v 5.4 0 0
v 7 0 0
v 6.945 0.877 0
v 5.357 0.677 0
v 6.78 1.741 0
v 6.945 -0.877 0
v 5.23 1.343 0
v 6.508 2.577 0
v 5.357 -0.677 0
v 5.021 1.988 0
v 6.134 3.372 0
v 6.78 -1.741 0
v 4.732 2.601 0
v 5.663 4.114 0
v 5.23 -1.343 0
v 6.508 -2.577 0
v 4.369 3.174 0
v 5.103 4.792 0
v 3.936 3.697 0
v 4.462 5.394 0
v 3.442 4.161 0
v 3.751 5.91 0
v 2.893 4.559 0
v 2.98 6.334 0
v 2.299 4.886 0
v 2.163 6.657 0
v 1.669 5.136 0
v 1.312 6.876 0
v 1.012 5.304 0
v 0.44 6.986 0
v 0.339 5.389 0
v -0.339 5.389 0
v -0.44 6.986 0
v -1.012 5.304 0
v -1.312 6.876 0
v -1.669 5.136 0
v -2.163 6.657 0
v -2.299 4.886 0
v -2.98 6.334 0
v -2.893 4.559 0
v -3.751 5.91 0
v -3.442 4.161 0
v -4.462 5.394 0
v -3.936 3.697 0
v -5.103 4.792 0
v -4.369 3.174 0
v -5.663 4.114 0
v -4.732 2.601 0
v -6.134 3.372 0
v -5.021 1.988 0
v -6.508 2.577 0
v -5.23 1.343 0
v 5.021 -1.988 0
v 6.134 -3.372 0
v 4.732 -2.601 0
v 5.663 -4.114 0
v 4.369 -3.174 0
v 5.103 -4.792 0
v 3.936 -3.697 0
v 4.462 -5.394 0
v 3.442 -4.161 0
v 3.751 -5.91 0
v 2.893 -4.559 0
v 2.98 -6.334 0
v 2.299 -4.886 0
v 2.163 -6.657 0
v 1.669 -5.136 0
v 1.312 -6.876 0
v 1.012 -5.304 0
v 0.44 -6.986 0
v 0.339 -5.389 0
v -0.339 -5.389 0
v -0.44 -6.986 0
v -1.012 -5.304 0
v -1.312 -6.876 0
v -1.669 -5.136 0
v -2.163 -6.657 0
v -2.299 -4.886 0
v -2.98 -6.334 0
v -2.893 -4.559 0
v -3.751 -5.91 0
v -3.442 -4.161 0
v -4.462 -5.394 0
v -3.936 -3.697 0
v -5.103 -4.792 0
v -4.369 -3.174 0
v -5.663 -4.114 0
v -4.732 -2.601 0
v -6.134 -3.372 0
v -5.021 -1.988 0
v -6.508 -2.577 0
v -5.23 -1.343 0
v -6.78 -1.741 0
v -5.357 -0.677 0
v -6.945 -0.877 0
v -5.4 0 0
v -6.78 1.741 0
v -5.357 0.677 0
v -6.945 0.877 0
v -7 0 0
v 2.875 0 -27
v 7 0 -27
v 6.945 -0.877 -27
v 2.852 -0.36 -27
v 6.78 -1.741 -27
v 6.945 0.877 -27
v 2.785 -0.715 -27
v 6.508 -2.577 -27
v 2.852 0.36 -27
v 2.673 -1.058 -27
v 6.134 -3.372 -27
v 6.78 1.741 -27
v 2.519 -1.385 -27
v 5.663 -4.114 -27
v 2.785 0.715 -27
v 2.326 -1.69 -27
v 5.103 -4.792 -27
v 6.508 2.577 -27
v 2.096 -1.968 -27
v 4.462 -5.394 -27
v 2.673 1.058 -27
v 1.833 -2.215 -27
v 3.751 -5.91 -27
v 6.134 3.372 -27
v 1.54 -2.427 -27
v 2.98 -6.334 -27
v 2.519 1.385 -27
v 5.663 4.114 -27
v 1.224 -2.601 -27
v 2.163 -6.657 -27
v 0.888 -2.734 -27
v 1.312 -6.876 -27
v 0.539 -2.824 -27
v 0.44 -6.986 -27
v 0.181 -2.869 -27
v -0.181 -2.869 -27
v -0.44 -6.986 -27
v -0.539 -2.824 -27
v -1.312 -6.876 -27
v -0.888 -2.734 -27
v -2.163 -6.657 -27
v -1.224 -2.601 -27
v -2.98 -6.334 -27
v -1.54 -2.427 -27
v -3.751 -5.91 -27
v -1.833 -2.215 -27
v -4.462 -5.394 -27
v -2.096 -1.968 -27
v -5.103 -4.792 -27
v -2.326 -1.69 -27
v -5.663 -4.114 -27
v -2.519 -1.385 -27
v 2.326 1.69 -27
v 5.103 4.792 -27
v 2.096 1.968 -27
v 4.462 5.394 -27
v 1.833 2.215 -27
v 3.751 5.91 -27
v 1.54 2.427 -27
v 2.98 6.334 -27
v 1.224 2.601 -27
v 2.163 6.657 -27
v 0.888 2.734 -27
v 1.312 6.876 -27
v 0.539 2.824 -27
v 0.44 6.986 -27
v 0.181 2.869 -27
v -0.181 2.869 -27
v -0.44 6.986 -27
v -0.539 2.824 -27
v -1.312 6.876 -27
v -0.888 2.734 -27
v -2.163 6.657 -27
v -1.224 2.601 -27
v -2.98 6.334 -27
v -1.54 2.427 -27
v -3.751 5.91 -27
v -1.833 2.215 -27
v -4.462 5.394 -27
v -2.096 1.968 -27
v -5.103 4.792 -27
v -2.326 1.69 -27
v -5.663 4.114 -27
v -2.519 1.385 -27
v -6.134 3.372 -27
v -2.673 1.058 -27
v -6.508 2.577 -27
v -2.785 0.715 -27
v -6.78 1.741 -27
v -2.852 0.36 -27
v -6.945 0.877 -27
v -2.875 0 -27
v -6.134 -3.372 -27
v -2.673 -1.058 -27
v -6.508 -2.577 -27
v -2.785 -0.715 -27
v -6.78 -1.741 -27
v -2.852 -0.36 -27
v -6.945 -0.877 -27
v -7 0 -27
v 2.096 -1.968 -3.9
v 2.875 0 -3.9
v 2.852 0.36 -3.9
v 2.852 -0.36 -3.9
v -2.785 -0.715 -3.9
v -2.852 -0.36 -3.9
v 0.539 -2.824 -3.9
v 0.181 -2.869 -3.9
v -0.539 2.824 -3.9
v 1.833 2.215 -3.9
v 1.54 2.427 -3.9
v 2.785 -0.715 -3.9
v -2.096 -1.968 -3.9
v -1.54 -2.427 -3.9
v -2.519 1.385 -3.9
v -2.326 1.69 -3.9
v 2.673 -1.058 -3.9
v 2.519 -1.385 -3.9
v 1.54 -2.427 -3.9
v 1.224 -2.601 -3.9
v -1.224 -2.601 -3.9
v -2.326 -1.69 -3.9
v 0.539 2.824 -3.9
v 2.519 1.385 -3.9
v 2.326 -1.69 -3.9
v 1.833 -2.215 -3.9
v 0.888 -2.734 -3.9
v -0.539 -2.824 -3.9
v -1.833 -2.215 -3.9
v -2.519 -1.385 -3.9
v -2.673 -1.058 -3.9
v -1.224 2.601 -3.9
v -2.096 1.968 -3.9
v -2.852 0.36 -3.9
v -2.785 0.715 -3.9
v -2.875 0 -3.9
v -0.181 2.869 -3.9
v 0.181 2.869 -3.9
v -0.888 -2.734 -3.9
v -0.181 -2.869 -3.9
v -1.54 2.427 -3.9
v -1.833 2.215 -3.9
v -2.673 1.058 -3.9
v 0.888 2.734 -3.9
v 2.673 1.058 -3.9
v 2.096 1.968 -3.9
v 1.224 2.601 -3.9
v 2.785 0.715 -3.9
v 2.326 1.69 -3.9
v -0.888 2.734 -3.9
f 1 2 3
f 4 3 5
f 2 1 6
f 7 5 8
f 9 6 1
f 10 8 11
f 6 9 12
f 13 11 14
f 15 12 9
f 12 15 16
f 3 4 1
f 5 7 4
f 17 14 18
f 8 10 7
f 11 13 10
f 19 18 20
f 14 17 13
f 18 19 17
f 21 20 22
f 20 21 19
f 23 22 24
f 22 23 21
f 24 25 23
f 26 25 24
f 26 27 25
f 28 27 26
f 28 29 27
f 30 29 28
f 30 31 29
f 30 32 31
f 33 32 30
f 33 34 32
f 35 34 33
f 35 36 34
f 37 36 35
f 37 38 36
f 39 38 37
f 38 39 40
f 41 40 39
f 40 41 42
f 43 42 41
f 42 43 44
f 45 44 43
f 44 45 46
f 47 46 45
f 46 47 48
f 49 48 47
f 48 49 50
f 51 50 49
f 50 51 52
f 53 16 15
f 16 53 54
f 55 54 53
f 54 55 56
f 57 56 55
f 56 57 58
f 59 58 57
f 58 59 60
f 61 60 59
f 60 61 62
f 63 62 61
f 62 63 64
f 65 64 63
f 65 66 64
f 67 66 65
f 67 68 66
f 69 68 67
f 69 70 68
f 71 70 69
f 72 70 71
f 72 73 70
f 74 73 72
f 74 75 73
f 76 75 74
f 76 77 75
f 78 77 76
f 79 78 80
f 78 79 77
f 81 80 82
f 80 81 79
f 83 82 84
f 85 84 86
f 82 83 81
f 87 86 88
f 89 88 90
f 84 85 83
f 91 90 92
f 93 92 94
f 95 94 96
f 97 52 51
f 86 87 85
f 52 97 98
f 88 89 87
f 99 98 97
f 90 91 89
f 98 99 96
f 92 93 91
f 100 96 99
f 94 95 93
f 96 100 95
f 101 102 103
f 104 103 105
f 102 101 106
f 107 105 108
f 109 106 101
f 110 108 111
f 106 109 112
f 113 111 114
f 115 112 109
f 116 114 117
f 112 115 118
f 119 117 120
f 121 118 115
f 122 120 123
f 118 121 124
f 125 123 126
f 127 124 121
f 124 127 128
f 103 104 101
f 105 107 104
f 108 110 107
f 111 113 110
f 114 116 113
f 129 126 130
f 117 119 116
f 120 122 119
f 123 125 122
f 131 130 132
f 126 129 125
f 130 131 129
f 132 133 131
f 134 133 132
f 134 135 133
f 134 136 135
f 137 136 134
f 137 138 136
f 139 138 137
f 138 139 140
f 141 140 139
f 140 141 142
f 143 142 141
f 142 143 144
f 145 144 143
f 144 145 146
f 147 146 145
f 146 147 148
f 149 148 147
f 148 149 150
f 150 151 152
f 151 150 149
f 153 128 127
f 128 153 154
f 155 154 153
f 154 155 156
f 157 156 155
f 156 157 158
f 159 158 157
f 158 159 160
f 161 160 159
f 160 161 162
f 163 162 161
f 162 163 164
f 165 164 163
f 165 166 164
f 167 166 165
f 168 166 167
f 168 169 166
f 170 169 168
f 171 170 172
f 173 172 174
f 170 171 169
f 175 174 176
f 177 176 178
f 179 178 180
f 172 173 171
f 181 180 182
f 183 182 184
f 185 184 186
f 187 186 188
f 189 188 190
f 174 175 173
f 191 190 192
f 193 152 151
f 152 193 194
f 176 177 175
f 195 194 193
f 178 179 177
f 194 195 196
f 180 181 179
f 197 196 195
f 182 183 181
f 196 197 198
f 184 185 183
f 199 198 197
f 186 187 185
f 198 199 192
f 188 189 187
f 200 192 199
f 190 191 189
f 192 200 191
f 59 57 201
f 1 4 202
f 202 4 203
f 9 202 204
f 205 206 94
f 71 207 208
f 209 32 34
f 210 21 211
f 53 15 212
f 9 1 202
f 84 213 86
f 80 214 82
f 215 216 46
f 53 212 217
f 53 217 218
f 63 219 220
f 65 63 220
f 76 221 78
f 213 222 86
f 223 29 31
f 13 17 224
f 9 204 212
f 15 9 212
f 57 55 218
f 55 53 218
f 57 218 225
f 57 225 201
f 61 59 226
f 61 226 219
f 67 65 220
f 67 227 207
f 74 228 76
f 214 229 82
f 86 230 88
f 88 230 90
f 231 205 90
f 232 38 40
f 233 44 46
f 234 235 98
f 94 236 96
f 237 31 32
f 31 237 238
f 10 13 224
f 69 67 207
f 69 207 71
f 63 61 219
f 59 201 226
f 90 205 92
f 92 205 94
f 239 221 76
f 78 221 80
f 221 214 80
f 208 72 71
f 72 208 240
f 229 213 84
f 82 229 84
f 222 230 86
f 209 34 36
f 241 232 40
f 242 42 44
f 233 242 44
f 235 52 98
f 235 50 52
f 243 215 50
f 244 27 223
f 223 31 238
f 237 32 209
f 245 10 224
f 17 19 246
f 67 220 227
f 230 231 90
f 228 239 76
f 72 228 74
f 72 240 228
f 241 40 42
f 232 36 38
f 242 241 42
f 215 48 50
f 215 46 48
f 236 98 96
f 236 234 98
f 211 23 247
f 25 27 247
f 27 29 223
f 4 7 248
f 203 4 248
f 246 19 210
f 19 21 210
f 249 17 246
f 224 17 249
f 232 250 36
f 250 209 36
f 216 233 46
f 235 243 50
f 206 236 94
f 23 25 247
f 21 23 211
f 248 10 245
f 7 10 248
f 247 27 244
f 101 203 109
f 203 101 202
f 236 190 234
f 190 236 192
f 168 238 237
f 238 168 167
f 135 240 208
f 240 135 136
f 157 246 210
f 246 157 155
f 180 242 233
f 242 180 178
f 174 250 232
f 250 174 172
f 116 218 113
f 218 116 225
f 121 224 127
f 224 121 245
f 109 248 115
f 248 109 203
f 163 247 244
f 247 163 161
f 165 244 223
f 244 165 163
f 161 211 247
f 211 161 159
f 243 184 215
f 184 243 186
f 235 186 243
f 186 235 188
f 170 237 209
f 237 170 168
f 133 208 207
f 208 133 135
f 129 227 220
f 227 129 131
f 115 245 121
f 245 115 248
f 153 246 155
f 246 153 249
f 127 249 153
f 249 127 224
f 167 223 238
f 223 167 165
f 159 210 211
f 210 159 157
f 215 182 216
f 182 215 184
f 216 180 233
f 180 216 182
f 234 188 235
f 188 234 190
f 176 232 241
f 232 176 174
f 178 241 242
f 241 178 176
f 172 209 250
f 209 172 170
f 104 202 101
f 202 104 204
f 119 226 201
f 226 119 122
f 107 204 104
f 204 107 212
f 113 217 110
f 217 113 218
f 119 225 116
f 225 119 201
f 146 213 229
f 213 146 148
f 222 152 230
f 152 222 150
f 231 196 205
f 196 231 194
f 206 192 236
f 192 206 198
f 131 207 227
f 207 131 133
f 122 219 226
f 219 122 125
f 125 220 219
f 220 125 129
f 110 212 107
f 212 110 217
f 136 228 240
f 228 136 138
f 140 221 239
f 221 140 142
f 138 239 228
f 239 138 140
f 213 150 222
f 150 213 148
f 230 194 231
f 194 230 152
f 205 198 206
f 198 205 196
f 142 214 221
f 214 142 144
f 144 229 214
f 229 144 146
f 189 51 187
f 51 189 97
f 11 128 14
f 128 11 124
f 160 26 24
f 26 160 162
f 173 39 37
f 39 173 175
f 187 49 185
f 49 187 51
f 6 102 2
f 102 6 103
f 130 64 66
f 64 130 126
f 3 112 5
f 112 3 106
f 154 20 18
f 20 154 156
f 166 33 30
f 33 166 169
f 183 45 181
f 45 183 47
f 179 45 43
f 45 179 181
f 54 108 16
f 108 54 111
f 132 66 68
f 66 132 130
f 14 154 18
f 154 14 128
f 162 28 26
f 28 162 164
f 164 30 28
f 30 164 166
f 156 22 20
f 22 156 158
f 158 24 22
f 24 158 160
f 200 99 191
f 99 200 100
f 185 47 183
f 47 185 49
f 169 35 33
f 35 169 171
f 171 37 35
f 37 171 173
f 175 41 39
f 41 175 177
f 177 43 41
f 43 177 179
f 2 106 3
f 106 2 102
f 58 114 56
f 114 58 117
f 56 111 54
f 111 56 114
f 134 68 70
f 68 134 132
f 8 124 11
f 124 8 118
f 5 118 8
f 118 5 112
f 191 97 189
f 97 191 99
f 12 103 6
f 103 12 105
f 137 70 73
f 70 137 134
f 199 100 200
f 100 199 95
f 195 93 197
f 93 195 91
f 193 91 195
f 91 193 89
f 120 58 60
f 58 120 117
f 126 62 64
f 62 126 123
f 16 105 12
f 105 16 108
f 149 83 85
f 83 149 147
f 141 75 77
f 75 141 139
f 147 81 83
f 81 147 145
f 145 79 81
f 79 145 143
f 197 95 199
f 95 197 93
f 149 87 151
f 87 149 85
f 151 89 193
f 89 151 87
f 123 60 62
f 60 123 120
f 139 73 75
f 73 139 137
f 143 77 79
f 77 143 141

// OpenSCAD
$fn = 50;


difference() {
	union() {
		translate(v = [0, 0, -27.0000000000]) {
			cylinder(h = 27, r = 7.0000000000);
		}
		cylinder(h = 0, r = 10.0000000000);
	}
	union() {
		translate(v = [0, 0, 0]) {
			rotate(a = [0, 0, 0]) {
				difference() {
					union() {
						#translate(v = [0, 0, -27.0000000000]) {
							cylinder(h = 27, r = 2.6000000000);
						}
						#translate(v = [0, 0, -3.9000000000]) {
							cylinder(h = 3.9000000000, r1 = 2.8750000000, r2 = 5.4000000000);
						}
						#translate(v = [0, 0, -27.0000000000]) {
							cylinder(h = 27, r = 2.8750000000);
						}
						#translate(v = [0, 0, -27.0000000000]) {
							cylinder(h = 27, r = 2.6000000000);
						}
					}
					union();
				}
			}
		}
	}
}
